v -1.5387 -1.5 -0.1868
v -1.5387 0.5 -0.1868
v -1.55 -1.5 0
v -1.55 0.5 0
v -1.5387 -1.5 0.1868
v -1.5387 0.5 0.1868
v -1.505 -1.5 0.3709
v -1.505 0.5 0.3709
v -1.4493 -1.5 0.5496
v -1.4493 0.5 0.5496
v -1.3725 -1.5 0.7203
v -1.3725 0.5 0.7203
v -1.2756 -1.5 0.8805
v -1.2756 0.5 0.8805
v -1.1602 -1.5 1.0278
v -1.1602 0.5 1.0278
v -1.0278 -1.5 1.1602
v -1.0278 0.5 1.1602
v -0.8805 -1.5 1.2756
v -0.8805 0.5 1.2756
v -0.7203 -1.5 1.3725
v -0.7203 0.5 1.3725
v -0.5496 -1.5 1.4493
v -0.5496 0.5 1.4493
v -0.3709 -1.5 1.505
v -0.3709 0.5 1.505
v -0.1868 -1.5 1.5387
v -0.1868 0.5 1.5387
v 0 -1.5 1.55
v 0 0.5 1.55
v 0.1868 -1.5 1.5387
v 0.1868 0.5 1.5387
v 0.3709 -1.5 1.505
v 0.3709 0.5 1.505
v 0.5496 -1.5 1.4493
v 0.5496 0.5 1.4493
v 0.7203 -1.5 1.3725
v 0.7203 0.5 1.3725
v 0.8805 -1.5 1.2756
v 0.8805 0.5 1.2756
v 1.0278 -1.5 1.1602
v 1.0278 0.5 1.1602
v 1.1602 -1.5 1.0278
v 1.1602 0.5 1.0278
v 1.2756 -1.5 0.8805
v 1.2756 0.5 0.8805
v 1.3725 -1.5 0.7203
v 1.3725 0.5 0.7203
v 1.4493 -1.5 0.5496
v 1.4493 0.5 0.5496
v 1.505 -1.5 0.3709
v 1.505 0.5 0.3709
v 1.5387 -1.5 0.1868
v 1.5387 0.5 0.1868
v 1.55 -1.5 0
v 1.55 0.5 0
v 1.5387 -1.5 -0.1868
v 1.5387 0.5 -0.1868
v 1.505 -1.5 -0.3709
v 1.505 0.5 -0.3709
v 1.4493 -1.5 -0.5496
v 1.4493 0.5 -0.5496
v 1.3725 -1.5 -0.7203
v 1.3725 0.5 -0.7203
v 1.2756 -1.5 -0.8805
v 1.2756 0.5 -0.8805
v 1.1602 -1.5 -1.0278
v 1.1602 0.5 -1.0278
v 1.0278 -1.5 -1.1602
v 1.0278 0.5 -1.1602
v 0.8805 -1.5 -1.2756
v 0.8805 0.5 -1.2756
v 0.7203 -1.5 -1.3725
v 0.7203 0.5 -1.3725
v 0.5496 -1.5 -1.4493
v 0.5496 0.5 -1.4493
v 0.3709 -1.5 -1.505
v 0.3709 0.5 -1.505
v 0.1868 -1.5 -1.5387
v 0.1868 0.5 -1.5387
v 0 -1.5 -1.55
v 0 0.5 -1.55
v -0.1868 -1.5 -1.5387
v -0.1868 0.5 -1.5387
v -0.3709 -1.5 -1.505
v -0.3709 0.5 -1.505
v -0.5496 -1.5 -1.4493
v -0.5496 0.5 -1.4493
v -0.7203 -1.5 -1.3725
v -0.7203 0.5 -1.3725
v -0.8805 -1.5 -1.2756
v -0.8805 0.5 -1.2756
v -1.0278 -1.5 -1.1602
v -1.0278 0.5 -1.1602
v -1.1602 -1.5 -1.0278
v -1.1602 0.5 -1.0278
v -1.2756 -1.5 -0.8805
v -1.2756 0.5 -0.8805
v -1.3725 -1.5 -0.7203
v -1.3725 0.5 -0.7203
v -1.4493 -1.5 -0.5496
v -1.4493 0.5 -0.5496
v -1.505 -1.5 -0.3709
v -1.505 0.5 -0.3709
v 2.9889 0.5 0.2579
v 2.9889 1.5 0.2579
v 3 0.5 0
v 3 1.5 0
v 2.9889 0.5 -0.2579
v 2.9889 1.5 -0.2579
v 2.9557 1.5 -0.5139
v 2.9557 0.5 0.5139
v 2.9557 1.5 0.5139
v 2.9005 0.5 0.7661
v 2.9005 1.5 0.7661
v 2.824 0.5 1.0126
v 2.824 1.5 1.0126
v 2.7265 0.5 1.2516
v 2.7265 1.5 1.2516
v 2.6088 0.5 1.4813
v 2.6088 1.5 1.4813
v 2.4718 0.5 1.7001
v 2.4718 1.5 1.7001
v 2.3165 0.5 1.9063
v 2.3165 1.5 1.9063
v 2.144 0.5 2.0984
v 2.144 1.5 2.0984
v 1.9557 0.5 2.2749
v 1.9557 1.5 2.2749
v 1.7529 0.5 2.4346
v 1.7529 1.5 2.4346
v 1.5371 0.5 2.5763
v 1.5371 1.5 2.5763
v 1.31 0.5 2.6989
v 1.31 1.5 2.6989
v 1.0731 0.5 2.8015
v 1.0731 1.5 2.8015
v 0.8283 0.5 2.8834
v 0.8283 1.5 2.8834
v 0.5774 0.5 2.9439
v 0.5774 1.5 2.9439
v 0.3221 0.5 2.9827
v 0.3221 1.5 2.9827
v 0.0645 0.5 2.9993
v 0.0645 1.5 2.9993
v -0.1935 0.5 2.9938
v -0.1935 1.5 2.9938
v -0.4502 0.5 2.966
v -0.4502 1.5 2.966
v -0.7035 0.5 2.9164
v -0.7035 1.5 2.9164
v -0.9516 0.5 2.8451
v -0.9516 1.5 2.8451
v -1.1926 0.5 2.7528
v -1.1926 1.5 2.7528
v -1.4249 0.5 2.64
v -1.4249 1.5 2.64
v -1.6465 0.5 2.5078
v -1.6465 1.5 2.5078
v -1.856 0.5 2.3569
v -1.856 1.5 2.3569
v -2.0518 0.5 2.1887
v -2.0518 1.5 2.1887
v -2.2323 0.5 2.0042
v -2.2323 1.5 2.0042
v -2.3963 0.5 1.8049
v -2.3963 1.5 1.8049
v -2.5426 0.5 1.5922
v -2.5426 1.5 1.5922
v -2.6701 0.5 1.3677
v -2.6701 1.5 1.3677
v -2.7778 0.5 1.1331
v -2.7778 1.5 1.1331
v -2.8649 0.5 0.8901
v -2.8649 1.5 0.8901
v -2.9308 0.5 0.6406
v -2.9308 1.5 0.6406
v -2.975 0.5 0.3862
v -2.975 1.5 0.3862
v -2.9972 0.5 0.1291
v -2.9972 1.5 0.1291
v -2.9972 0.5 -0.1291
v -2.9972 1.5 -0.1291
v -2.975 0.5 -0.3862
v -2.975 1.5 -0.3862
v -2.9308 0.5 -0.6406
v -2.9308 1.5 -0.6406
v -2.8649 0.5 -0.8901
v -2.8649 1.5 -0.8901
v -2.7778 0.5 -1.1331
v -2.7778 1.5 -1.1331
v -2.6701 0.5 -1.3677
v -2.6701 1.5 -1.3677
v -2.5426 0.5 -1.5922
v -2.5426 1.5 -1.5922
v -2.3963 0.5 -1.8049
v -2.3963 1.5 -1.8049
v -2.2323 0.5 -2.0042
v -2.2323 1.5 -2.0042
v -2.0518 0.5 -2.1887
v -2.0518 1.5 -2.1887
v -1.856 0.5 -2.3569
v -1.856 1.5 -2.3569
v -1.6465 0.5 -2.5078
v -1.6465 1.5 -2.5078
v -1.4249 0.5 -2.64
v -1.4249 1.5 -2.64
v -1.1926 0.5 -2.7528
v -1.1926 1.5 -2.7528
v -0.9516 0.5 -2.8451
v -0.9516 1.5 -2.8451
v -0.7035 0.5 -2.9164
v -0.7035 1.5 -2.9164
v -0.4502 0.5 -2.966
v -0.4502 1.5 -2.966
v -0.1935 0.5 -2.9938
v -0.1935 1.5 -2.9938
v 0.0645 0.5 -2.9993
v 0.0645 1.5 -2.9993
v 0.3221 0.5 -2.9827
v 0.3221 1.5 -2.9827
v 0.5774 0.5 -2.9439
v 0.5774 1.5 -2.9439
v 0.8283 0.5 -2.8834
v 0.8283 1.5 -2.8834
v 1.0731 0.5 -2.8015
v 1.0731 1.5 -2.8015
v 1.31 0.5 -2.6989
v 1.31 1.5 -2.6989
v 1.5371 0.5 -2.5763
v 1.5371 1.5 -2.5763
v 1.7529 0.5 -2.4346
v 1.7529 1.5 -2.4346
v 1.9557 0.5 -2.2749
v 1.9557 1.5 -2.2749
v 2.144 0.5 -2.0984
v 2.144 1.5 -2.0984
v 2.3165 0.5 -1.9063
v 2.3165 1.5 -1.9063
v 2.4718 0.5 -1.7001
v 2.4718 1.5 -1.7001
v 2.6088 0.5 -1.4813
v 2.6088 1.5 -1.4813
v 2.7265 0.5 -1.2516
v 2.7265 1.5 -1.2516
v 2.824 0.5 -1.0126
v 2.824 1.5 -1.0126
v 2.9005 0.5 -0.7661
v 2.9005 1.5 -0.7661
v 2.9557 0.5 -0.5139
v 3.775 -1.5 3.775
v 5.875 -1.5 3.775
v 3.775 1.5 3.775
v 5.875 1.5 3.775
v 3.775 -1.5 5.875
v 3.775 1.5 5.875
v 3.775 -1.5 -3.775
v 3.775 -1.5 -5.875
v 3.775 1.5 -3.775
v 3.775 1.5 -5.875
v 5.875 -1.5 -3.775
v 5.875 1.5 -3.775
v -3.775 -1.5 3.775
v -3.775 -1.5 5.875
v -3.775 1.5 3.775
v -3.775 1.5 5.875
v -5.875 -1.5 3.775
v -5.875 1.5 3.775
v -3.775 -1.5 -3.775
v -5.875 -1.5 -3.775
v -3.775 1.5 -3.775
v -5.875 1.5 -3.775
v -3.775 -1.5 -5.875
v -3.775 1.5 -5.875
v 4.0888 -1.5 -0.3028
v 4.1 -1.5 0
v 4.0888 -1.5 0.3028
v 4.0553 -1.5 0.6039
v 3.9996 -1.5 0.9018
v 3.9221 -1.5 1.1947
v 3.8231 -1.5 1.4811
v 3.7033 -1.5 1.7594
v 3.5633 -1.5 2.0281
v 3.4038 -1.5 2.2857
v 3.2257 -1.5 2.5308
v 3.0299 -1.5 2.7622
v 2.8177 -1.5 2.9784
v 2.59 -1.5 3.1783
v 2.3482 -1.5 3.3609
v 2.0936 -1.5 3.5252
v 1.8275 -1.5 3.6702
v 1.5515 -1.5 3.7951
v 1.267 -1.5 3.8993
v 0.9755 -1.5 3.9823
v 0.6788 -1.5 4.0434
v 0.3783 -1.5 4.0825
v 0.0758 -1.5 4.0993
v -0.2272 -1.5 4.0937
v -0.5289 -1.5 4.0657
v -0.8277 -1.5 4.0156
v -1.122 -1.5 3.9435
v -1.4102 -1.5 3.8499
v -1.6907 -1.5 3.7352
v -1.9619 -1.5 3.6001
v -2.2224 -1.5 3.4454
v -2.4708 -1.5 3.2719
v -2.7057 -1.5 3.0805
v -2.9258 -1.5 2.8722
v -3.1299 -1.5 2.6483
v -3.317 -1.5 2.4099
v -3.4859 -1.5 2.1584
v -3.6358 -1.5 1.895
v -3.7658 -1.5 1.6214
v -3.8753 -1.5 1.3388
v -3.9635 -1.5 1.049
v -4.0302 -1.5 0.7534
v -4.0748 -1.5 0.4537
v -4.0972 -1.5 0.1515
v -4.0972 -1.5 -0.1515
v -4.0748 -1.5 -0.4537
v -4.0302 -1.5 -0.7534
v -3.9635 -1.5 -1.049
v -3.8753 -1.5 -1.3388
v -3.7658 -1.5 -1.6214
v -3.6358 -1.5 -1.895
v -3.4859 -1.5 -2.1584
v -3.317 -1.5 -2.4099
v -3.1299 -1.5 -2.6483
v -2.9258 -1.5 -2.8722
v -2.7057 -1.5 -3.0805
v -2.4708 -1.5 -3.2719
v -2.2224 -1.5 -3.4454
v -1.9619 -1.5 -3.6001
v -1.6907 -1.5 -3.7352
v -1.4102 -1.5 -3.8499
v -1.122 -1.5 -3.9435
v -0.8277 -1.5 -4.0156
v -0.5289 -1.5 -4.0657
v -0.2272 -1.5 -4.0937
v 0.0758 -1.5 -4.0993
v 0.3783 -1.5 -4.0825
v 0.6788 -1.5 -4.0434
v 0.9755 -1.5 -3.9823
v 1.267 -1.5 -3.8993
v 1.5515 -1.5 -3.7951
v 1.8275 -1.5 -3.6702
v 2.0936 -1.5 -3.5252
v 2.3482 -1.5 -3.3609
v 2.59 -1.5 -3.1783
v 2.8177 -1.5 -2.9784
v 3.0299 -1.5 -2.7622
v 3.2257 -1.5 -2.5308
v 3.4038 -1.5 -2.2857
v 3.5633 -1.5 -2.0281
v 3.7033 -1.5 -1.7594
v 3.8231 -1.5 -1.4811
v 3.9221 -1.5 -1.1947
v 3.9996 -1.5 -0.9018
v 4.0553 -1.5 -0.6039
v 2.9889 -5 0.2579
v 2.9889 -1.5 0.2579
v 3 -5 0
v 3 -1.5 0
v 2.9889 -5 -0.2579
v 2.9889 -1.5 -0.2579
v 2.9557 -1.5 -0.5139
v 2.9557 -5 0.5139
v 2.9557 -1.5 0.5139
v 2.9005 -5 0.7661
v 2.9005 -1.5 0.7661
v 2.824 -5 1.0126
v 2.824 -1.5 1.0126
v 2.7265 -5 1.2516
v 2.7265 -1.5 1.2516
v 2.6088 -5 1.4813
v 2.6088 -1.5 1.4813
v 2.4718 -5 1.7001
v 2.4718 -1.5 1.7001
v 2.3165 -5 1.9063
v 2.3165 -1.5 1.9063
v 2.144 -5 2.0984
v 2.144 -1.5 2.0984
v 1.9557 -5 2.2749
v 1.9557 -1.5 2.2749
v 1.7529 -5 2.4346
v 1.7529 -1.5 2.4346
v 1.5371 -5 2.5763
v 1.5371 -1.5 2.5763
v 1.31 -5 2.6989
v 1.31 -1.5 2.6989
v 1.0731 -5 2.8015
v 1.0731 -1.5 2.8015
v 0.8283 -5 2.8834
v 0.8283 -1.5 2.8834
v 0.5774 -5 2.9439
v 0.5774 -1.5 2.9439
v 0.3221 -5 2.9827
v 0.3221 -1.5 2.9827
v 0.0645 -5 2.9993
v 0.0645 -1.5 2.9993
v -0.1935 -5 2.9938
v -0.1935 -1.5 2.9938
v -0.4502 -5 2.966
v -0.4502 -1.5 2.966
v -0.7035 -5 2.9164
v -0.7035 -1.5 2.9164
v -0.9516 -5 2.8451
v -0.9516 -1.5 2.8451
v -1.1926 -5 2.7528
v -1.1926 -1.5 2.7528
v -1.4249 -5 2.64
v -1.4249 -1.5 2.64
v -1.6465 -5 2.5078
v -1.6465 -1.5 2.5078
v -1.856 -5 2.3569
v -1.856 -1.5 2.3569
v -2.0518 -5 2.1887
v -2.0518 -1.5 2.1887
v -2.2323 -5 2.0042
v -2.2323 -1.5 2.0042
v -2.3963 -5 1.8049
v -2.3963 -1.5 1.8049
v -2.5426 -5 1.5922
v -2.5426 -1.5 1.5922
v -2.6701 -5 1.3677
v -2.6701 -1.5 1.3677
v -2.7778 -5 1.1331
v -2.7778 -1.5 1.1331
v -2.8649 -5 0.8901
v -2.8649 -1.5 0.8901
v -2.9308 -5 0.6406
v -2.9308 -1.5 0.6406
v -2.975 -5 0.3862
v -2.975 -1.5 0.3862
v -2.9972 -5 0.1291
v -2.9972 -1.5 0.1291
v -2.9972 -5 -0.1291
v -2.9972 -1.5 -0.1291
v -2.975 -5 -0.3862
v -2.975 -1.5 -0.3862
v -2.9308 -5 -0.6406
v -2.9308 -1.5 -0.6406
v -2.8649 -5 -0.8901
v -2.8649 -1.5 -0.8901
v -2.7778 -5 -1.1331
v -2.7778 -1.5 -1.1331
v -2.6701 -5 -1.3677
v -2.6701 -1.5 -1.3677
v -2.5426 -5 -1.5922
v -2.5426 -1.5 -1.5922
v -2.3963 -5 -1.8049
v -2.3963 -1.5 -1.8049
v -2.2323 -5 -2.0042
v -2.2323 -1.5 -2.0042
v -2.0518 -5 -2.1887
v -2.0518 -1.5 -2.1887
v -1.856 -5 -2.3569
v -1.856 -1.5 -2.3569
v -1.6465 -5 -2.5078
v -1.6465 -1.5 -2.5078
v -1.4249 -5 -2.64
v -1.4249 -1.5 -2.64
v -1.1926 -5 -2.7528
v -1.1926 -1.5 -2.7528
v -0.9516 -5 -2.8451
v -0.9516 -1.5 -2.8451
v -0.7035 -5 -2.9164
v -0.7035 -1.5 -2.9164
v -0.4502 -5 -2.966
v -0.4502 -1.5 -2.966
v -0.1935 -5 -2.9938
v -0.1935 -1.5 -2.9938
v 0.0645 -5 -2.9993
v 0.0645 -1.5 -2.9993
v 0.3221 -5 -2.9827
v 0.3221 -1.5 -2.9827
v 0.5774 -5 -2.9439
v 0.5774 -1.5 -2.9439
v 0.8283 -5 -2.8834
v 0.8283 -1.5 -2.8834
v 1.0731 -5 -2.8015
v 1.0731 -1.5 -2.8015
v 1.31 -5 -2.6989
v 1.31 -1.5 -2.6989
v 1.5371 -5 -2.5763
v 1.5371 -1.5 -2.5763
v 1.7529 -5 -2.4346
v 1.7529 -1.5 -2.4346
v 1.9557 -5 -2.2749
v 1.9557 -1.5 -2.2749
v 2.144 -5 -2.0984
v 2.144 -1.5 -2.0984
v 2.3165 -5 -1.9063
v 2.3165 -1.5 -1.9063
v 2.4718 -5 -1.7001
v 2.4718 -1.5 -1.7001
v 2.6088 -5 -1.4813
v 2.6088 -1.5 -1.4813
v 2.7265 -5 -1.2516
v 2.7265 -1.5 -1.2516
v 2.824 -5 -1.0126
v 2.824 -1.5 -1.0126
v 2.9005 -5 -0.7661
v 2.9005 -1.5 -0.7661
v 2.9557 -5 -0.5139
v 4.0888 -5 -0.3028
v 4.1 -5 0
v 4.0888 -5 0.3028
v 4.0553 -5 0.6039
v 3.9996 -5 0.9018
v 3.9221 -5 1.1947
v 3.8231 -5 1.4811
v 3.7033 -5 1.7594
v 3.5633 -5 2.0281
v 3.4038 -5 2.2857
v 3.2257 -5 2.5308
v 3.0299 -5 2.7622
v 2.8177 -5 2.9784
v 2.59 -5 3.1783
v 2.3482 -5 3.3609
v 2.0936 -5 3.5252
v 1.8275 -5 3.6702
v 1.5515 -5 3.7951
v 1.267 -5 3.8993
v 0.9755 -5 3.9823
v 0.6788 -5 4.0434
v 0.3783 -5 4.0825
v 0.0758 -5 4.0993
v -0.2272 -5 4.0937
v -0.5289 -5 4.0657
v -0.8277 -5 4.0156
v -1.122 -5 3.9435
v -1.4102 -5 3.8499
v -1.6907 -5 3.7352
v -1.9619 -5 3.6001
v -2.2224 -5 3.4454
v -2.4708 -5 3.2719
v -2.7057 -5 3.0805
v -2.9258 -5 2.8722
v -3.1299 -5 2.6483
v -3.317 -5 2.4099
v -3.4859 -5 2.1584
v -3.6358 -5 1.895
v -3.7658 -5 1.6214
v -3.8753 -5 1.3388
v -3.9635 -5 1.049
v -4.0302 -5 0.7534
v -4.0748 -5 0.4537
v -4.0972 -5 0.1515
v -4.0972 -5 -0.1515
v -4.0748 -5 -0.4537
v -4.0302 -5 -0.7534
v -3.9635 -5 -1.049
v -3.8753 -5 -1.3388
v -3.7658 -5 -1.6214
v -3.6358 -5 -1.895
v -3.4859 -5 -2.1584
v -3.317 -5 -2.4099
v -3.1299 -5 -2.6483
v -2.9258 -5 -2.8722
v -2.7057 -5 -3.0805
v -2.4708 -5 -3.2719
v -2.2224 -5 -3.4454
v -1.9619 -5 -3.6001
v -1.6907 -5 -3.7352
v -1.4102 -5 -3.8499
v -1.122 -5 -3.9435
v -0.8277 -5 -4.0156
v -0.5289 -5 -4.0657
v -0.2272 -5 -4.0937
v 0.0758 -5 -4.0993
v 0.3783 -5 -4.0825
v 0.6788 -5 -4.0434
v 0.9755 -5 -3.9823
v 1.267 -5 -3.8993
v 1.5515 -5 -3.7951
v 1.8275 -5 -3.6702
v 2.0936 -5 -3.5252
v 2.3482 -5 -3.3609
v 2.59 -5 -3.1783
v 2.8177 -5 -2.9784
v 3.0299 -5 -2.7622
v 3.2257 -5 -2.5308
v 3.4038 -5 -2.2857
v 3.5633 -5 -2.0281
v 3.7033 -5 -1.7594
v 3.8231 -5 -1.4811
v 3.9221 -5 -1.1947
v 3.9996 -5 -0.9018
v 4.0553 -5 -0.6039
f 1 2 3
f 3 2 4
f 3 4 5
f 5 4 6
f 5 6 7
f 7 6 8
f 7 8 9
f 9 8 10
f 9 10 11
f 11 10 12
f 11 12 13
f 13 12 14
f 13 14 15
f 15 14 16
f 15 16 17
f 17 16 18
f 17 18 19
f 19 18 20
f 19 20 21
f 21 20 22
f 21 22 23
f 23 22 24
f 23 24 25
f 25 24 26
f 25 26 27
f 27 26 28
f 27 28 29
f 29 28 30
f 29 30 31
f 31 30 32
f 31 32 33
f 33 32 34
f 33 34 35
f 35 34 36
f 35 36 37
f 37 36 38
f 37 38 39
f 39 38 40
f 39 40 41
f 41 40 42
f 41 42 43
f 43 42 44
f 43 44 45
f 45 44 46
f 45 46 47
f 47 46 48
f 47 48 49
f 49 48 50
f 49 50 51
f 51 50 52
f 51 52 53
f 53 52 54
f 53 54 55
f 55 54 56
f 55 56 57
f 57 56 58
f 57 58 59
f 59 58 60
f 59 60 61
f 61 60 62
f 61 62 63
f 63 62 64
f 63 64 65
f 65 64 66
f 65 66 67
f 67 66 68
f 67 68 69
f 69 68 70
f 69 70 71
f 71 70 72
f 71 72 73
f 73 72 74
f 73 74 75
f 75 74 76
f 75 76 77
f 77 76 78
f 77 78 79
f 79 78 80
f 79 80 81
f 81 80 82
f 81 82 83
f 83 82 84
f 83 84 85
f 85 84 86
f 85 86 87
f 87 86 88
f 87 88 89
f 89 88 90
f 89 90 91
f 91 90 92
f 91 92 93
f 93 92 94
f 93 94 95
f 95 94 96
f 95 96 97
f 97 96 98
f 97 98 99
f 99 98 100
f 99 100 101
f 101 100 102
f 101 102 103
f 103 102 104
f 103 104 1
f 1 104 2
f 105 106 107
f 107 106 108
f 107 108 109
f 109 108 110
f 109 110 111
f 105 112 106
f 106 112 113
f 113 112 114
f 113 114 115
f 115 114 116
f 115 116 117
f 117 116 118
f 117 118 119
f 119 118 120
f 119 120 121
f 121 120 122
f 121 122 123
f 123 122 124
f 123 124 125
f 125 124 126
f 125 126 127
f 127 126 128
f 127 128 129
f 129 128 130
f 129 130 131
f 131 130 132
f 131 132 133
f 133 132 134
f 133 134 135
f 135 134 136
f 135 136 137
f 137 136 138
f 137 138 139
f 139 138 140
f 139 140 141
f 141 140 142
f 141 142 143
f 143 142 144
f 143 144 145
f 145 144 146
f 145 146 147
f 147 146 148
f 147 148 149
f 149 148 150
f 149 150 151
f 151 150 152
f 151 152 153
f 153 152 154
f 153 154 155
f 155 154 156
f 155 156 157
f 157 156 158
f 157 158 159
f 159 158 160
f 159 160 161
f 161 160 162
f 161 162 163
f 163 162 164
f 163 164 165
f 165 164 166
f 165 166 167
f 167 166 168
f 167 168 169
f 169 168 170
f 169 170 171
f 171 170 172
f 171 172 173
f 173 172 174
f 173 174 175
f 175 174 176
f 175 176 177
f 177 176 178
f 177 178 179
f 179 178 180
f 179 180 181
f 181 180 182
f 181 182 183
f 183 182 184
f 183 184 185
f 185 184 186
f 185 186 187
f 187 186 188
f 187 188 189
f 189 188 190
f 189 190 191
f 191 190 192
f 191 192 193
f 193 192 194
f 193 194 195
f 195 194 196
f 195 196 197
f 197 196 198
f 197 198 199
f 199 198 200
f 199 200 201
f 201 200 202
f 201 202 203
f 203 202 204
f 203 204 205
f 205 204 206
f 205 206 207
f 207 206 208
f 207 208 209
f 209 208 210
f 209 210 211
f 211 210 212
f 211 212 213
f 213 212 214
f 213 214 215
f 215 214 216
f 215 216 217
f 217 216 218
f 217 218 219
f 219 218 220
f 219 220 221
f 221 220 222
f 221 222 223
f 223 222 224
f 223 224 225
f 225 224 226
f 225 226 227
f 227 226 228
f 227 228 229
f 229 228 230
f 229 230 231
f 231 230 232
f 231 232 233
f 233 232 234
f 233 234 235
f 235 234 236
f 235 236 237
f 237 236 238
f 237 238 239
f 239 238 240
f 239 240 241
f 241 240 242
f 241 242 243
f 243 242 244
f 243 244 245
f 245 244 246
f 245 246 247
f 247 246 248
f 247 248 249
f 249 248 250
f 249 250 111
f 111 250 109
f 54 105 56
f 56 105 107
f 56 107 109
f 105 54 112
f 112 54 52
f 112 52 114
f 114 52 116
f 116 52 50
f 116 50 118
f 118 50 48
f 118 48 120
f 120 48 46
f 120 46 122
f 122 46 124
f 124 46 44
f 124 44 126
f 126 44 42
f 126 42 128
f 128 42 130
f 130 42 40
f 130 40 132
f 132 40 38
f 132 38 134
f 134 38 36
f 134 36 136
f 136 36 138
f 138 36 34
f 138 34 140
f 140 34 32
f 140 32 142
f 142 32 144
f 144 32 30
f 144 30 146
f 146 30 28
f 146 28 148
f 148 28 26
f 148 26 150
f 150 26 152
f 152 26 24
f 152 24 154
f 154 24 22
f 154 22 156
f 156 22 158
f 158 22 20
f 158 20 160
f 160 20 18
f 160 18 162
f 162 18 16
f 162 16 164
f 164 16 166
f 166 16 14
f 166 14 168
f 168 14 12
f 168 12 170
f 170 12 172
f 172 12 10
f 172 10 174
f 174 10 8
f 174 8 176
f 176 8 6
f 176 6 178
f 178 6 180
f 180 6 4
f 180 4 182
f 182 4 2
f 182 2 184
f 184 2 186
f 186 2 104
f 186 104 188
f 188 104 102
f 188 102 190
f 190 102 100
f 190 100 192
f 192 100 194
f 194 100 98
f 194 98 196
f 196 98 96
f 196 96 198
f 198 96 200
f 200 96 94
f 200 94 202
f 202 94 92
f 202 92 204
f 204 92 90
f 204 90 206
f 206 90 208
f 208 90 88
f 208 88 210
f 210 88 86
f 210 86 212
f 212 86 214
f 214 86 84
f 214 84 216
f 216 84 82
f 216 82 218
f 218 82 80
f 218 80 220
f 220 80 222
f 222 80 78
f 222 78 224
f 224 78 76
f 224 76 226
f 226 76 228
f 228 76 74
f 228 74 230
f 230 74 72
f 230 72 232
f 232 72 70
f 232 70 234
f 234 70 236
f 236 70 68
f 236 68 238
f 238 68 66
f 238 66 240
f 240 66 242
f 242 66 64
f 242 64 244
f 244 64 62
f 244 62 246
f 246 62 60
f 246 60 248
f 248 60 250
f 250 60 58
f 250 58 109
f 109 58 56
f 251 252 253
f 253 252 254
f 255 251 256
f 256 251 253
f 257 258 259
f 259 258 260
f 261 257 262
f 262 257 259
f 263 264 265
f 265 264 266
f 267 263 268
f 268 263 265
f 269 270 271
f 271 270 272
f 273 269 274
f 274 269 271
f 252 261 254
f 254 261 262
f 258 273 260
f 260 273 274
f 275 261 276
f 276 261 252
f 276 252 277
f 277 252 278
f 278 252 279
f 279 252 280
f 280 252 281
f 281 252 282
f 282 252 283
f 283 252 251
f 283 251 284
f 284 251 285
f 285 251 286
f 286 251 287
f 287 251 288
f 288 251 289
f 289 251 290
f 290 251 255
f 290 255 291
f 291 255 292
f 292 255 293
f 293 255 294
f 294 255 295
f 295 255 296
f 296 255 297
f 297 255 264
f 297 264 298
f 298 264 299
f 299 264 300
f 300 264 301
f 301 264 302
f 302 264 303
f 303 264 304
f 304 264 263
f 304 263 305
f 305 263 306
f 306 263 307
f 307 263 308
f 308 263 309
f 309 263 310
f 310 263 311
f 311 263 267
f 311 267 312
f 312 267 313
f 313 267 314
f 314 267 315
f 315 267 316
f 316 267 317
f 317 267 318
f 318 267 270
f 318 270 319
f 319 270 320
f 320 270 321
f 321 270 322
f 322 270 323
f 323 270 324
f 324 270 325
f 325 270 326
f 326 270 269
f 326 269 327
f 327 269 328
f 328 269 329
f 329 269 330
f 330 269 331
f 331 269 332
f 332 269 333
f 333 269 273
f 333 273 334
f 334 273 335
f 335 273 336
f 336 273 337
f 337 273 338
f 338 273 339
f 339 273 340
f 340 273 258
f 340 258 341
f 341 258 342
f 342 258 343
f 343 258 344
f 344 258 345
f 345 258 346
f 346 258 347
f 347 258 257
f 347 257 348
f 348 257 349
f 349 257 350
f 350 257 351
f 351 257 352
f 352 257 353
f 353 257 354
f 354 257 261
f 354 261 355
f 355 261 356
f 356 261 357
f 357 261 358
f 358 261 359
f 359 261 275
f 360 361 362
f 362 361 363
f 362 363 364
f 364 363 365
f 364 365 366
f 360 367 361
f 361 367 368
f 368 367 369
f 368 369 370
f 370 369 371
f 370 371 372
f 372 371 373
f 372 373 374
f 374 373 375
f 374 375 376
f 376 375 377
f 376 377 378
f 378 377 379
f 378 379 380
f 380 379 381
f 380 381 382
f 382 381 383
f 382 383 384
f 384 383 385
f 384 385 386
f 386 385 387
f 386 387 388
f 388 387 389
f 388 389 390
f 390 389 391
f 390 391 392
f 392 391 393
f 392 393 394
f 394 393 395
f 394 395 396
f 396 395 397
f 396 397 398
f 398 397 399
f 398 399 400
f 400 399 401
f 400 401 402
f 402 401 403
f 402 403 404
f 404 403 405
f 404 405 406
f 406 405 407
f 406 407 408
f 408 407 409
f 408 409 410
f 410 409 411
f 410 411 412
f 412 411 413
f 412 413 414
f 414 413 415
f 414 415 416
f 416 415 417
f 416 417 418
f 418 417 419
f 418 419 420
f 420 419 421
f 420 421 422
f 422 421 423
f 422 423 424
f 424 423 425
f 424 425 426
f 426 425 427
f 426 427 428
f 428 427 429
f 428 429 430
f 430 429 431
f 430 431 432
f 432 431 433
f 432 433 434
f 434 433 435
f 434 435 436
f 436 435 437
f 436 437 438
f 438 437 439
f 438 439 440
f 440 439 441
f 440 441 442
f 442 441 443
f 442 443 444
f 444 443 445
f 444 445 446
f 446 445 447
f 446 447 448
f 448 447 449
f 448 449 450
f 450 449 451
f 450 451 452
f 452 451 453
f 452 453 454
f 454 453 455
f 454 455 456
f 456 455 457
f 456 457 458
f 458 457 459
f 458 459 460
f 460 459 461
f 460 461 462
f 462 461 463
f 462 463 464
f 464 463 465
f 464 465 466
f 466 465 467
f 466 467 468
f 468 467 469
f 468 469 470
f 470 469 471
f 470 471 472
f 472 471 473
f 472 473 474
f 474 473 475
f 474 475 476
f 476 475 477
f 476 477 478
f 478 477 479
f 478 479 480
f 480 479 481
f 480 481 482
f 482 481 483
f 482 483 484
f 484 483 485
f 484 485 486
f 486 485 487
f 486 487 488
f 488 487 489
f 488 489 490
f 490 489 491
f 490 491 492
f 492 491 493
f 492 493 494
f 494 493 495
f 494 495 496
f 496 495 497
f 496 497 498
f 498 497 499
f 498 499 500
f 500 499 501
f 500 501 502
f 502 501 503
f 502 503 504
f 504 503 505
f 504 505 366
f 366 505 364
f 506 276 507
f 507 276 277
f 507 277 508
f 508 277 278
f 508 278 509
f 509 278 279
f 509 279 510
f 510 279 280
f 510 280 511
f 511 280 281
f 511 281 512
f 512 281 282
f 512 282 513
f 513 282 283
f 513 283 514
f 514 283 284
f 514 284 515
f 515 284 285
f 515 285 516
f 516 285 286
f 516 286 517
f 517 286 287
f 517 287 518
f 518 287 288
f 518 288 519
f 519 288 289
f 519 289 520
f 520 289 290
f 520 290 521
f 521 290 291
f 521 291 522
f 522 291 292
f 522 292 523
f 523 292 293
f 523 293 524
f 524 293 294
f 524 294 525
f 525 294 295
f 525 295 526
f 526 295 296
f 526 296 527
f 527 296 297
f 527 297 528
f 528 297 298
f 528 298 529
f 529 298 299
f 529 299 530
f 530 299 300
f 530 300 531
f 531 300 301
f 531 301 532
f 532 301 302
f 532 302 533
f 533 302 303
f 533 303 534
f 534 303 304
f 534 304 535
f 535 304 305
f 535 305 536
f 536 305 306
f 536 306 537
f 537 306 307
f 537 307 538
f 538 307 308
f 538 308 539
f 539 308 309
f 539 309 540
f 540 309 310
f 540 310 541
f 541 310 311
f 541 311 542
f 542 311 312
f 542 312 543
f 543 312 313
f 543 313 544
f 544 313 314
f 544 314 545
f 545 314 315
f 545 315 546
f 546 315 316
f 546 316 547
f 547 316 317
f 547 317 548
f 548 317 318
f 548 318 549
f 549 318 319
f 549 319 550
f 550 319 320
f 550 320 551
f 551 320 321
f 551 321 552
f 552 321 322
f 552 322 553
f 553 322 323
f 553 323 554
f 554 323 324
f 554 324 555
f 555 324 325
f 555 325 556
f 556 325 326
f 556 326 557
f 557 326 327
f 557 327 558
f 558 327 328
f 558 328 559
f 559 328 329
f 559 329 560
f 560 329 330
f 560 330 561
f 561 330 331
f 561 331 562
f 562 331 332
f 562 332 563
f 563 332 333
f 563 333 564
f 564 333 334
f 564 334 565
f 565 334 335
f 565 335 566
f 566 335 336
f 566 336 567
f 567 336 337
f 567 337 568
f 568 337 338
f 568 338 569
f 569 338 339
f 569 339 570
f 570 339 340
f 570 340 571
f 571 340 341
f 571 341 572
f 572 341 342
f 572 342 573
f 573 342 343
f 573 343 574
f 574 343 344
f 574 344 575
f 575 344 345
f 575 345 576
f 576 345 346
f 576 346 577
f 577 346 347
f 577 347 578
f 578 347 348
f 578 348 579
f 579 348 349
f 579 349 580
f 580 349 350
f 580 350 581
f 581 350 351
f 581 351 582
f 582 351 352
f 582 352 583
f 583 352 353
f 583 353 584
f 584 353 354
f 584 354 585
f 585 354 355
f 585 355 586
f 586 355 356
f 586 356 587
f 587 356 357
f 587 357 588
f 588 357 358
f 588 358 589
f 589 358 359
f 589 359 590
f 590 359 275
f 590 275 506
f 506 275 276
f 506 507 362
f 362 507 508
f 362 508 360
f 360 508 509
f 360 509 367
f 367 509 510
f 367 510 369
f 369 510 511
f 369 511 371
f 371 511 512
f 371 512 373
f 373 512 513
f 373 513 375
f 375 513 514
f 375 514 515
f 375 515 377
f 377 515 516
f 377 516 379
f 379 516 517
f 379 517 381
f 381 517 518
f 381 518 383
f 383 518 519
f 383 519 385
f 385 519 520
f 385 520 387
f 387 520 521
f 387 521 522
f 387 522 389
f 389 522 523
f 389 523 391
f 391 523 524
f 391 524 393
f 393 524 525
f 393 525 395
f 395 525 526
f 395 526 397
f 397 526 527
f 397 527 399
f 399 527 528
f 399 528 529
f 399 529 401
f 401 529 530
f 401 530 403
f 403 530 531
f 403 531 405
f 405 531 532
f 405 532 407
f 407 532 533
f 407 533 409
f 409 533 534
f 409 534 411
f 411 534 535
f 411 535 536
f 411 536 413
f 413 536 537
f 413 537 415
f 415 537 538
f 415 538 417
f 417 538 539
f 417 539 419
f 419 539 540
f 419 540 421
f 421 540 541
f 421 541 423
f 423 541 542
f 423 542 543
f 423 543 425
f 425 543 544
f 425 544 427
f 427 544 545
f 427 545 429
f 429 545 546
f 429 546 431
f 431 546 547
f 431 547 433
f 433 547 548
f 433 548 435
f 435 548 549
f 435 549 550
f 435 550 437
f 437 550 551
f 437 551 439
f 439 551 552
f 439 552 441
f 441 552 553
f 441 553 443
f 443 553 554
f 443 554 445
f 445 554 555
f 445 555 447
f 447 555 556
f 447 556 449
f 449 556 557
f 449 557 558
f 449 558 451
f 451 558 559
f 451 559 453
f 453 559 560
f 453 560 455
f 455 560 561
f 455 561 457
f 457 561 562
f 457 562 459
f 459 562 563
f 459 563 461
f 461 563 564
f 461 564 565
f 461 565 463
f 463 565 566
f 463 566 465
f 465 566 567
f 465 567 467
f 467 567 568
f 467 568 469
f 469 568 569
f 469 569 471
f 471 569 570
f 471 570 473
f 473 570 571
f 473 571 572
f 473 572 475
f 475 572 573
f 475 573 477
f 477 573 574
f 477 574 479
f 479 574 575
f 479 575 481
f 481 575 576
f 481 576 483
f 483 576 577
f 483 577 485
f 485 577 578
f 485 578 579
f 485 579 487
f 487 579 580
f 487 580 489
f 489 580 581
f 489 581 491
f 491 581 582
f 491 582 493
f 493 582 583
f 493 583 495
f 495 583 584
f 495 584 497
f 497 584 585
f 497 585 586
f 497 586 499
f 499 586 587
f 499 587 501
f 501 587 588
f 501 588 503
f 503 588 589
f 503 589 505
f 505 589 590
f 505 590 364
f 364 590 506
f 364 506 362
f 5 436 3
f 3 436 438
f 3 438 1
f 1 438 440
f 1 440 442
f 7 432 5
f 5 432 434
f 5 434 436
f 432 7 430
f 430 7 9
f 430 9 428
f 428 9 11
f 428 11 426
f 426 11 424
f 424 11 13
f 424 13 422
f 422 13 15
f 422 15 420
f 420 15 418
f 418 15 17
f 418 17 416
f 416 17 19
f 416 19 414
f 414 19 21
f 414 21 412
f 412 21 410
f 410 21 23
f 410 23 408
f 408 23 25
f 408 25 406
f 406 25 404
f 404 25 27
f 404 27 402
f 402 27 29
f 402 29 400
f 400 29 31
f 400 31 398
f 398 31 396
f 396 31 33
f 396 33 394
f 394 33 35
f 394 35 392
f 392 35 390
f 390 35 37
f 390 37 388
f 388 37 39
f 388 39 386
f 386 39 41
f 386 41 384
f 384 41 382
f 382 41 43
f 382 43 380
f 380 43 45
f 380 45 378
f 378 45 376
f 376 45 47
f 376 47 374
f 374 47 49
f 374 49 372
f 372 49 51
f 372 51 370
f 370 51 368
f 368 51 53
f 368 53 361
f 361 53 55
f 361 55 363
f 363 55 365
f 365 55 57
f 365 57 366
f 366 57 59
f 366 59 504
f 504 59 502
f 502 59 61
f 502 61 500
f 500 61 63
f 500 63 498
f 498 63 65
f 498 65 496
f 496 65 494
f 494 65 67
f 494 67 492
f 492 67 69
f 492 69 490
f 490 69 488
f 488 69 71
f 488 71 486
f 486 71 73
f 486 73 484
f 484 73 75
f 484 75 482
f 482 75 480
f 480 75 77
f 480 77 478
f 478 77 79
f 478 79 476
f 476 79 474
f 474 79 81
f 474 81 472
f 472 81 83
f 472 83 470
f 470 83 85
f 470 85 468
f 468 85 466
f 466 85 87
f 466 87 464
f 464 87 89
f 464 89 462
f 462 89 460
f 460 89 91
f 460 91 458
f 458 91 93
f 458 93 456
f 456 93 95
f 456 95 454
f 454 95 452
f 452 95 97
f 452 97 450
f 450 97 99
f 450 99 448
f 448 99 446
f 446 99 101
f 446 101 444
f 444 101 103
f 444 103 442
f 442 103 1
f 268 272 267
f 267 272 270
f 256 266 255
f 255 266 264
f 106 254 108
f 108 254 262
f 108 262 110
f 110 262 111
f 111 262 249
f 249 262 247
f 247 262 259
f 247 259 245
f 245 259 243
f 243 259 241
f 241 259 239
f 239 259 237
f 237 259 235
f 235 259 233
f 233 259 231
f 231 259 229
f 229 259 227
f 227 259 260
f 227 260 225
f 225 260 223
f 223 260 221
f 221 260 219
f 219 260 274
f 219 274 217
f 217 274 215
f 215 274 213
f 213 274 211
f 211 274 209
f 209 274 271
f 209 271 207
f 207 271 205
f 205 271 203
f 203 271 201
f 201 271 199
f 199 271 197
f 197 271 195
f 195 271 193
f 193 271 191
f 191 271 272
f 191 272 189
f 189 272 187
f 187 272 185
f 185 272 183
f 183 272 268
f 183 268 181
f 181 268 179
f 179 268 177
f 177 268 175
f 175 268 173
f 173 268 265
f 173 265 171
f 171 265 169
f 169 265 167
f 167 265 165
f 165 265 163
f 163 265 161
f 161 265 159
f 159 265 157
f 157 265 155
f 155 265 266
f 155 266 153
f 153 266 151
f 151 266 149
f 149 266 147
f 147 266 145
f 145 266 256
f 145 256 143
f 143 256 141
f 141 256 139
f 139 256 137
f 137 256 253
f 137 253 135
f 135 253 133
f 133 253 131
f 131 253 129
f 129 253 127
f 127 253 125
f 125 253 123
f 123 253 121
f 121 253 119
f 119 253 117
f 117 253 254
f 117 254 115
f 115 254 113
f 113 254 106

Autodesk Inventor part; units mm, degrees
ref_plane "YZ Plane" through (0, 0, 0) normal (1, 0, 0) x (0, 1, 0)
ref_plane "XZ Plane" through (0, 0, 0) normal (0, 1, 0) x (-1, 0, 0)
sketch "Skizze1" plane through (0, 0, 0) normal (0, 1, 0) x (-1, 0, 0)
  circle A0 centre (0, 0) radius 3.5
  line L0 (5.875, -5.875) -> (-5.875, -5.875)
  line L1 (-5.875, -5.875) -> (-5.875, 5.875)
  line L2 (-5.875, 5.875) -> (5.875, 5.875)
  line L3 (5.875, 5.875) -> (5.875, -5.875)
  line L4 (8.225, 0) -> (-8.225, 0) projected
  line L5 (0.75, 5.875) -> (-0.75, 5.875)
  line L6 (0, -8.225) -> (0, 8.225) projected
  point P0 (0.75, -5.875)
  point P1 (-5.875, -0.75)
  point P2 (5.875, -0.75)
  dimension "d1" = 7
  dimension "d2" = 11.75
  dimension "d3" = 11.75
extrude "Extrusion1" add sketch "Skizze1" along normal mid plane 3
sketch "Skizze2" plane through (0, 1.5, 0) normal (0, 1, 0) x (1, 0, 0)
  circle A0 centre (0, 0) radius 3
  dimension "d14" = 6
ref_plane "Arbeitsebene1" through (0, -0.5, 0) normal (0, 1, 0) x (1, 0, 0)
sketch "Skizze4" plane through (0, -1.5, 0) normal (0, -1, 0) x (1, 0, 0)
  circle A0 centre (0, 0) radius 3
  circle A1 centre (0, 0) radius 1.4 projected
  circle A2 centre (0, 0) radius 4.1
  dimension "d20" = 6
  dimension "d21" = 8.2
extrude "Extrusion4" add sketch "Skizze4" along normal blind 3.5 contours A2
sketch "Skizze5" plane through (0, 1.5, 0) normal (0, 1, 0) x (1, 0, 0)
  line L0 (-5.875, 5.875) -> (5.875, 5.875) projected
  line L1 (-5.875, 5.875) -> (-3.775, 5.875)
  line L2 (-3.775, 5.875) -> (-3.775, 3.775)
  line L3 (-3.775, 3.775) -> (-5.875, 3.775)
  line L4 (-5.875, 3.775) -> (-5.875, 5.875)
  line L5 (-5.875, 5.875) -> (5.875, 5.875) projected
  line L6 (5.875, 5.875) -> (3.775, 5.875)
  line L7 (3.775, 5.875) -> (3.775, 3.775)
  line L8 (3.775, 3.775) -> (5.875, 3.775)
  line L9 (5.875, 3.775) -> (5.875, 5.875)
  line L10 (-5.875, -5.875) -> (-5.875, 5.875) projected
  line L11 (-5.875, -5.875) -> (-3.775, -5.875)
  line L12 (-3.775, -5.875) -> (-3.775, -3.775)
  line L13 (-3.775, -3.775) -> (-5.875, -3.775)
  line L14 (-5.875, -3.775) -> (-5.875, -5.875)
  line L15 (5.875, -5.875) -> (-5.875, -5.875) projected
  line L16 (5.875, -5.875) -> (3.775, -5.875)
  line L17 (3.775, -5.875) -> (3.775, -3.775)
  line L18 (3.775, -3.775) -> (5.875, -3.775)
  line L19 (5.875, -3.775) -> (5.875, -5.875)
  point P0 (0, 0)
  point P1 (-0.75, 5.75)
  point P2 (0.75, 5.75)
  point P3 (-5.75, -0.75)
  point P4 (0.75, -5.75)
  dimension "d24" = 2.1
  dimension "d25" = 2.1
  dimension "d26" = 2.1
  dimension "d27" = 2.1
  dimension "d28" = 2.1
  dimension "d29" = 2.1
  dimension "d30" = 2.1
  dimension "d31" = 2.1
extrude "Extrusion5" cut sketch "Skizze5" against normal blind 6
extrude "Extrusion6" cut sketch "Skizze2" against normal blind 1
sketch "Skizze6" plane through (0, 0.5, 0) normal (0, 1, 0) x (1, 0, 0)
  circle A0 centre (0, 0) radius 1.55
  dimension "d38" = 3.1
extrude "Extrusion7" cut sketch "Skizze6" against normal up to surface (2 mm away)
properties part number "_3D-Druck"
